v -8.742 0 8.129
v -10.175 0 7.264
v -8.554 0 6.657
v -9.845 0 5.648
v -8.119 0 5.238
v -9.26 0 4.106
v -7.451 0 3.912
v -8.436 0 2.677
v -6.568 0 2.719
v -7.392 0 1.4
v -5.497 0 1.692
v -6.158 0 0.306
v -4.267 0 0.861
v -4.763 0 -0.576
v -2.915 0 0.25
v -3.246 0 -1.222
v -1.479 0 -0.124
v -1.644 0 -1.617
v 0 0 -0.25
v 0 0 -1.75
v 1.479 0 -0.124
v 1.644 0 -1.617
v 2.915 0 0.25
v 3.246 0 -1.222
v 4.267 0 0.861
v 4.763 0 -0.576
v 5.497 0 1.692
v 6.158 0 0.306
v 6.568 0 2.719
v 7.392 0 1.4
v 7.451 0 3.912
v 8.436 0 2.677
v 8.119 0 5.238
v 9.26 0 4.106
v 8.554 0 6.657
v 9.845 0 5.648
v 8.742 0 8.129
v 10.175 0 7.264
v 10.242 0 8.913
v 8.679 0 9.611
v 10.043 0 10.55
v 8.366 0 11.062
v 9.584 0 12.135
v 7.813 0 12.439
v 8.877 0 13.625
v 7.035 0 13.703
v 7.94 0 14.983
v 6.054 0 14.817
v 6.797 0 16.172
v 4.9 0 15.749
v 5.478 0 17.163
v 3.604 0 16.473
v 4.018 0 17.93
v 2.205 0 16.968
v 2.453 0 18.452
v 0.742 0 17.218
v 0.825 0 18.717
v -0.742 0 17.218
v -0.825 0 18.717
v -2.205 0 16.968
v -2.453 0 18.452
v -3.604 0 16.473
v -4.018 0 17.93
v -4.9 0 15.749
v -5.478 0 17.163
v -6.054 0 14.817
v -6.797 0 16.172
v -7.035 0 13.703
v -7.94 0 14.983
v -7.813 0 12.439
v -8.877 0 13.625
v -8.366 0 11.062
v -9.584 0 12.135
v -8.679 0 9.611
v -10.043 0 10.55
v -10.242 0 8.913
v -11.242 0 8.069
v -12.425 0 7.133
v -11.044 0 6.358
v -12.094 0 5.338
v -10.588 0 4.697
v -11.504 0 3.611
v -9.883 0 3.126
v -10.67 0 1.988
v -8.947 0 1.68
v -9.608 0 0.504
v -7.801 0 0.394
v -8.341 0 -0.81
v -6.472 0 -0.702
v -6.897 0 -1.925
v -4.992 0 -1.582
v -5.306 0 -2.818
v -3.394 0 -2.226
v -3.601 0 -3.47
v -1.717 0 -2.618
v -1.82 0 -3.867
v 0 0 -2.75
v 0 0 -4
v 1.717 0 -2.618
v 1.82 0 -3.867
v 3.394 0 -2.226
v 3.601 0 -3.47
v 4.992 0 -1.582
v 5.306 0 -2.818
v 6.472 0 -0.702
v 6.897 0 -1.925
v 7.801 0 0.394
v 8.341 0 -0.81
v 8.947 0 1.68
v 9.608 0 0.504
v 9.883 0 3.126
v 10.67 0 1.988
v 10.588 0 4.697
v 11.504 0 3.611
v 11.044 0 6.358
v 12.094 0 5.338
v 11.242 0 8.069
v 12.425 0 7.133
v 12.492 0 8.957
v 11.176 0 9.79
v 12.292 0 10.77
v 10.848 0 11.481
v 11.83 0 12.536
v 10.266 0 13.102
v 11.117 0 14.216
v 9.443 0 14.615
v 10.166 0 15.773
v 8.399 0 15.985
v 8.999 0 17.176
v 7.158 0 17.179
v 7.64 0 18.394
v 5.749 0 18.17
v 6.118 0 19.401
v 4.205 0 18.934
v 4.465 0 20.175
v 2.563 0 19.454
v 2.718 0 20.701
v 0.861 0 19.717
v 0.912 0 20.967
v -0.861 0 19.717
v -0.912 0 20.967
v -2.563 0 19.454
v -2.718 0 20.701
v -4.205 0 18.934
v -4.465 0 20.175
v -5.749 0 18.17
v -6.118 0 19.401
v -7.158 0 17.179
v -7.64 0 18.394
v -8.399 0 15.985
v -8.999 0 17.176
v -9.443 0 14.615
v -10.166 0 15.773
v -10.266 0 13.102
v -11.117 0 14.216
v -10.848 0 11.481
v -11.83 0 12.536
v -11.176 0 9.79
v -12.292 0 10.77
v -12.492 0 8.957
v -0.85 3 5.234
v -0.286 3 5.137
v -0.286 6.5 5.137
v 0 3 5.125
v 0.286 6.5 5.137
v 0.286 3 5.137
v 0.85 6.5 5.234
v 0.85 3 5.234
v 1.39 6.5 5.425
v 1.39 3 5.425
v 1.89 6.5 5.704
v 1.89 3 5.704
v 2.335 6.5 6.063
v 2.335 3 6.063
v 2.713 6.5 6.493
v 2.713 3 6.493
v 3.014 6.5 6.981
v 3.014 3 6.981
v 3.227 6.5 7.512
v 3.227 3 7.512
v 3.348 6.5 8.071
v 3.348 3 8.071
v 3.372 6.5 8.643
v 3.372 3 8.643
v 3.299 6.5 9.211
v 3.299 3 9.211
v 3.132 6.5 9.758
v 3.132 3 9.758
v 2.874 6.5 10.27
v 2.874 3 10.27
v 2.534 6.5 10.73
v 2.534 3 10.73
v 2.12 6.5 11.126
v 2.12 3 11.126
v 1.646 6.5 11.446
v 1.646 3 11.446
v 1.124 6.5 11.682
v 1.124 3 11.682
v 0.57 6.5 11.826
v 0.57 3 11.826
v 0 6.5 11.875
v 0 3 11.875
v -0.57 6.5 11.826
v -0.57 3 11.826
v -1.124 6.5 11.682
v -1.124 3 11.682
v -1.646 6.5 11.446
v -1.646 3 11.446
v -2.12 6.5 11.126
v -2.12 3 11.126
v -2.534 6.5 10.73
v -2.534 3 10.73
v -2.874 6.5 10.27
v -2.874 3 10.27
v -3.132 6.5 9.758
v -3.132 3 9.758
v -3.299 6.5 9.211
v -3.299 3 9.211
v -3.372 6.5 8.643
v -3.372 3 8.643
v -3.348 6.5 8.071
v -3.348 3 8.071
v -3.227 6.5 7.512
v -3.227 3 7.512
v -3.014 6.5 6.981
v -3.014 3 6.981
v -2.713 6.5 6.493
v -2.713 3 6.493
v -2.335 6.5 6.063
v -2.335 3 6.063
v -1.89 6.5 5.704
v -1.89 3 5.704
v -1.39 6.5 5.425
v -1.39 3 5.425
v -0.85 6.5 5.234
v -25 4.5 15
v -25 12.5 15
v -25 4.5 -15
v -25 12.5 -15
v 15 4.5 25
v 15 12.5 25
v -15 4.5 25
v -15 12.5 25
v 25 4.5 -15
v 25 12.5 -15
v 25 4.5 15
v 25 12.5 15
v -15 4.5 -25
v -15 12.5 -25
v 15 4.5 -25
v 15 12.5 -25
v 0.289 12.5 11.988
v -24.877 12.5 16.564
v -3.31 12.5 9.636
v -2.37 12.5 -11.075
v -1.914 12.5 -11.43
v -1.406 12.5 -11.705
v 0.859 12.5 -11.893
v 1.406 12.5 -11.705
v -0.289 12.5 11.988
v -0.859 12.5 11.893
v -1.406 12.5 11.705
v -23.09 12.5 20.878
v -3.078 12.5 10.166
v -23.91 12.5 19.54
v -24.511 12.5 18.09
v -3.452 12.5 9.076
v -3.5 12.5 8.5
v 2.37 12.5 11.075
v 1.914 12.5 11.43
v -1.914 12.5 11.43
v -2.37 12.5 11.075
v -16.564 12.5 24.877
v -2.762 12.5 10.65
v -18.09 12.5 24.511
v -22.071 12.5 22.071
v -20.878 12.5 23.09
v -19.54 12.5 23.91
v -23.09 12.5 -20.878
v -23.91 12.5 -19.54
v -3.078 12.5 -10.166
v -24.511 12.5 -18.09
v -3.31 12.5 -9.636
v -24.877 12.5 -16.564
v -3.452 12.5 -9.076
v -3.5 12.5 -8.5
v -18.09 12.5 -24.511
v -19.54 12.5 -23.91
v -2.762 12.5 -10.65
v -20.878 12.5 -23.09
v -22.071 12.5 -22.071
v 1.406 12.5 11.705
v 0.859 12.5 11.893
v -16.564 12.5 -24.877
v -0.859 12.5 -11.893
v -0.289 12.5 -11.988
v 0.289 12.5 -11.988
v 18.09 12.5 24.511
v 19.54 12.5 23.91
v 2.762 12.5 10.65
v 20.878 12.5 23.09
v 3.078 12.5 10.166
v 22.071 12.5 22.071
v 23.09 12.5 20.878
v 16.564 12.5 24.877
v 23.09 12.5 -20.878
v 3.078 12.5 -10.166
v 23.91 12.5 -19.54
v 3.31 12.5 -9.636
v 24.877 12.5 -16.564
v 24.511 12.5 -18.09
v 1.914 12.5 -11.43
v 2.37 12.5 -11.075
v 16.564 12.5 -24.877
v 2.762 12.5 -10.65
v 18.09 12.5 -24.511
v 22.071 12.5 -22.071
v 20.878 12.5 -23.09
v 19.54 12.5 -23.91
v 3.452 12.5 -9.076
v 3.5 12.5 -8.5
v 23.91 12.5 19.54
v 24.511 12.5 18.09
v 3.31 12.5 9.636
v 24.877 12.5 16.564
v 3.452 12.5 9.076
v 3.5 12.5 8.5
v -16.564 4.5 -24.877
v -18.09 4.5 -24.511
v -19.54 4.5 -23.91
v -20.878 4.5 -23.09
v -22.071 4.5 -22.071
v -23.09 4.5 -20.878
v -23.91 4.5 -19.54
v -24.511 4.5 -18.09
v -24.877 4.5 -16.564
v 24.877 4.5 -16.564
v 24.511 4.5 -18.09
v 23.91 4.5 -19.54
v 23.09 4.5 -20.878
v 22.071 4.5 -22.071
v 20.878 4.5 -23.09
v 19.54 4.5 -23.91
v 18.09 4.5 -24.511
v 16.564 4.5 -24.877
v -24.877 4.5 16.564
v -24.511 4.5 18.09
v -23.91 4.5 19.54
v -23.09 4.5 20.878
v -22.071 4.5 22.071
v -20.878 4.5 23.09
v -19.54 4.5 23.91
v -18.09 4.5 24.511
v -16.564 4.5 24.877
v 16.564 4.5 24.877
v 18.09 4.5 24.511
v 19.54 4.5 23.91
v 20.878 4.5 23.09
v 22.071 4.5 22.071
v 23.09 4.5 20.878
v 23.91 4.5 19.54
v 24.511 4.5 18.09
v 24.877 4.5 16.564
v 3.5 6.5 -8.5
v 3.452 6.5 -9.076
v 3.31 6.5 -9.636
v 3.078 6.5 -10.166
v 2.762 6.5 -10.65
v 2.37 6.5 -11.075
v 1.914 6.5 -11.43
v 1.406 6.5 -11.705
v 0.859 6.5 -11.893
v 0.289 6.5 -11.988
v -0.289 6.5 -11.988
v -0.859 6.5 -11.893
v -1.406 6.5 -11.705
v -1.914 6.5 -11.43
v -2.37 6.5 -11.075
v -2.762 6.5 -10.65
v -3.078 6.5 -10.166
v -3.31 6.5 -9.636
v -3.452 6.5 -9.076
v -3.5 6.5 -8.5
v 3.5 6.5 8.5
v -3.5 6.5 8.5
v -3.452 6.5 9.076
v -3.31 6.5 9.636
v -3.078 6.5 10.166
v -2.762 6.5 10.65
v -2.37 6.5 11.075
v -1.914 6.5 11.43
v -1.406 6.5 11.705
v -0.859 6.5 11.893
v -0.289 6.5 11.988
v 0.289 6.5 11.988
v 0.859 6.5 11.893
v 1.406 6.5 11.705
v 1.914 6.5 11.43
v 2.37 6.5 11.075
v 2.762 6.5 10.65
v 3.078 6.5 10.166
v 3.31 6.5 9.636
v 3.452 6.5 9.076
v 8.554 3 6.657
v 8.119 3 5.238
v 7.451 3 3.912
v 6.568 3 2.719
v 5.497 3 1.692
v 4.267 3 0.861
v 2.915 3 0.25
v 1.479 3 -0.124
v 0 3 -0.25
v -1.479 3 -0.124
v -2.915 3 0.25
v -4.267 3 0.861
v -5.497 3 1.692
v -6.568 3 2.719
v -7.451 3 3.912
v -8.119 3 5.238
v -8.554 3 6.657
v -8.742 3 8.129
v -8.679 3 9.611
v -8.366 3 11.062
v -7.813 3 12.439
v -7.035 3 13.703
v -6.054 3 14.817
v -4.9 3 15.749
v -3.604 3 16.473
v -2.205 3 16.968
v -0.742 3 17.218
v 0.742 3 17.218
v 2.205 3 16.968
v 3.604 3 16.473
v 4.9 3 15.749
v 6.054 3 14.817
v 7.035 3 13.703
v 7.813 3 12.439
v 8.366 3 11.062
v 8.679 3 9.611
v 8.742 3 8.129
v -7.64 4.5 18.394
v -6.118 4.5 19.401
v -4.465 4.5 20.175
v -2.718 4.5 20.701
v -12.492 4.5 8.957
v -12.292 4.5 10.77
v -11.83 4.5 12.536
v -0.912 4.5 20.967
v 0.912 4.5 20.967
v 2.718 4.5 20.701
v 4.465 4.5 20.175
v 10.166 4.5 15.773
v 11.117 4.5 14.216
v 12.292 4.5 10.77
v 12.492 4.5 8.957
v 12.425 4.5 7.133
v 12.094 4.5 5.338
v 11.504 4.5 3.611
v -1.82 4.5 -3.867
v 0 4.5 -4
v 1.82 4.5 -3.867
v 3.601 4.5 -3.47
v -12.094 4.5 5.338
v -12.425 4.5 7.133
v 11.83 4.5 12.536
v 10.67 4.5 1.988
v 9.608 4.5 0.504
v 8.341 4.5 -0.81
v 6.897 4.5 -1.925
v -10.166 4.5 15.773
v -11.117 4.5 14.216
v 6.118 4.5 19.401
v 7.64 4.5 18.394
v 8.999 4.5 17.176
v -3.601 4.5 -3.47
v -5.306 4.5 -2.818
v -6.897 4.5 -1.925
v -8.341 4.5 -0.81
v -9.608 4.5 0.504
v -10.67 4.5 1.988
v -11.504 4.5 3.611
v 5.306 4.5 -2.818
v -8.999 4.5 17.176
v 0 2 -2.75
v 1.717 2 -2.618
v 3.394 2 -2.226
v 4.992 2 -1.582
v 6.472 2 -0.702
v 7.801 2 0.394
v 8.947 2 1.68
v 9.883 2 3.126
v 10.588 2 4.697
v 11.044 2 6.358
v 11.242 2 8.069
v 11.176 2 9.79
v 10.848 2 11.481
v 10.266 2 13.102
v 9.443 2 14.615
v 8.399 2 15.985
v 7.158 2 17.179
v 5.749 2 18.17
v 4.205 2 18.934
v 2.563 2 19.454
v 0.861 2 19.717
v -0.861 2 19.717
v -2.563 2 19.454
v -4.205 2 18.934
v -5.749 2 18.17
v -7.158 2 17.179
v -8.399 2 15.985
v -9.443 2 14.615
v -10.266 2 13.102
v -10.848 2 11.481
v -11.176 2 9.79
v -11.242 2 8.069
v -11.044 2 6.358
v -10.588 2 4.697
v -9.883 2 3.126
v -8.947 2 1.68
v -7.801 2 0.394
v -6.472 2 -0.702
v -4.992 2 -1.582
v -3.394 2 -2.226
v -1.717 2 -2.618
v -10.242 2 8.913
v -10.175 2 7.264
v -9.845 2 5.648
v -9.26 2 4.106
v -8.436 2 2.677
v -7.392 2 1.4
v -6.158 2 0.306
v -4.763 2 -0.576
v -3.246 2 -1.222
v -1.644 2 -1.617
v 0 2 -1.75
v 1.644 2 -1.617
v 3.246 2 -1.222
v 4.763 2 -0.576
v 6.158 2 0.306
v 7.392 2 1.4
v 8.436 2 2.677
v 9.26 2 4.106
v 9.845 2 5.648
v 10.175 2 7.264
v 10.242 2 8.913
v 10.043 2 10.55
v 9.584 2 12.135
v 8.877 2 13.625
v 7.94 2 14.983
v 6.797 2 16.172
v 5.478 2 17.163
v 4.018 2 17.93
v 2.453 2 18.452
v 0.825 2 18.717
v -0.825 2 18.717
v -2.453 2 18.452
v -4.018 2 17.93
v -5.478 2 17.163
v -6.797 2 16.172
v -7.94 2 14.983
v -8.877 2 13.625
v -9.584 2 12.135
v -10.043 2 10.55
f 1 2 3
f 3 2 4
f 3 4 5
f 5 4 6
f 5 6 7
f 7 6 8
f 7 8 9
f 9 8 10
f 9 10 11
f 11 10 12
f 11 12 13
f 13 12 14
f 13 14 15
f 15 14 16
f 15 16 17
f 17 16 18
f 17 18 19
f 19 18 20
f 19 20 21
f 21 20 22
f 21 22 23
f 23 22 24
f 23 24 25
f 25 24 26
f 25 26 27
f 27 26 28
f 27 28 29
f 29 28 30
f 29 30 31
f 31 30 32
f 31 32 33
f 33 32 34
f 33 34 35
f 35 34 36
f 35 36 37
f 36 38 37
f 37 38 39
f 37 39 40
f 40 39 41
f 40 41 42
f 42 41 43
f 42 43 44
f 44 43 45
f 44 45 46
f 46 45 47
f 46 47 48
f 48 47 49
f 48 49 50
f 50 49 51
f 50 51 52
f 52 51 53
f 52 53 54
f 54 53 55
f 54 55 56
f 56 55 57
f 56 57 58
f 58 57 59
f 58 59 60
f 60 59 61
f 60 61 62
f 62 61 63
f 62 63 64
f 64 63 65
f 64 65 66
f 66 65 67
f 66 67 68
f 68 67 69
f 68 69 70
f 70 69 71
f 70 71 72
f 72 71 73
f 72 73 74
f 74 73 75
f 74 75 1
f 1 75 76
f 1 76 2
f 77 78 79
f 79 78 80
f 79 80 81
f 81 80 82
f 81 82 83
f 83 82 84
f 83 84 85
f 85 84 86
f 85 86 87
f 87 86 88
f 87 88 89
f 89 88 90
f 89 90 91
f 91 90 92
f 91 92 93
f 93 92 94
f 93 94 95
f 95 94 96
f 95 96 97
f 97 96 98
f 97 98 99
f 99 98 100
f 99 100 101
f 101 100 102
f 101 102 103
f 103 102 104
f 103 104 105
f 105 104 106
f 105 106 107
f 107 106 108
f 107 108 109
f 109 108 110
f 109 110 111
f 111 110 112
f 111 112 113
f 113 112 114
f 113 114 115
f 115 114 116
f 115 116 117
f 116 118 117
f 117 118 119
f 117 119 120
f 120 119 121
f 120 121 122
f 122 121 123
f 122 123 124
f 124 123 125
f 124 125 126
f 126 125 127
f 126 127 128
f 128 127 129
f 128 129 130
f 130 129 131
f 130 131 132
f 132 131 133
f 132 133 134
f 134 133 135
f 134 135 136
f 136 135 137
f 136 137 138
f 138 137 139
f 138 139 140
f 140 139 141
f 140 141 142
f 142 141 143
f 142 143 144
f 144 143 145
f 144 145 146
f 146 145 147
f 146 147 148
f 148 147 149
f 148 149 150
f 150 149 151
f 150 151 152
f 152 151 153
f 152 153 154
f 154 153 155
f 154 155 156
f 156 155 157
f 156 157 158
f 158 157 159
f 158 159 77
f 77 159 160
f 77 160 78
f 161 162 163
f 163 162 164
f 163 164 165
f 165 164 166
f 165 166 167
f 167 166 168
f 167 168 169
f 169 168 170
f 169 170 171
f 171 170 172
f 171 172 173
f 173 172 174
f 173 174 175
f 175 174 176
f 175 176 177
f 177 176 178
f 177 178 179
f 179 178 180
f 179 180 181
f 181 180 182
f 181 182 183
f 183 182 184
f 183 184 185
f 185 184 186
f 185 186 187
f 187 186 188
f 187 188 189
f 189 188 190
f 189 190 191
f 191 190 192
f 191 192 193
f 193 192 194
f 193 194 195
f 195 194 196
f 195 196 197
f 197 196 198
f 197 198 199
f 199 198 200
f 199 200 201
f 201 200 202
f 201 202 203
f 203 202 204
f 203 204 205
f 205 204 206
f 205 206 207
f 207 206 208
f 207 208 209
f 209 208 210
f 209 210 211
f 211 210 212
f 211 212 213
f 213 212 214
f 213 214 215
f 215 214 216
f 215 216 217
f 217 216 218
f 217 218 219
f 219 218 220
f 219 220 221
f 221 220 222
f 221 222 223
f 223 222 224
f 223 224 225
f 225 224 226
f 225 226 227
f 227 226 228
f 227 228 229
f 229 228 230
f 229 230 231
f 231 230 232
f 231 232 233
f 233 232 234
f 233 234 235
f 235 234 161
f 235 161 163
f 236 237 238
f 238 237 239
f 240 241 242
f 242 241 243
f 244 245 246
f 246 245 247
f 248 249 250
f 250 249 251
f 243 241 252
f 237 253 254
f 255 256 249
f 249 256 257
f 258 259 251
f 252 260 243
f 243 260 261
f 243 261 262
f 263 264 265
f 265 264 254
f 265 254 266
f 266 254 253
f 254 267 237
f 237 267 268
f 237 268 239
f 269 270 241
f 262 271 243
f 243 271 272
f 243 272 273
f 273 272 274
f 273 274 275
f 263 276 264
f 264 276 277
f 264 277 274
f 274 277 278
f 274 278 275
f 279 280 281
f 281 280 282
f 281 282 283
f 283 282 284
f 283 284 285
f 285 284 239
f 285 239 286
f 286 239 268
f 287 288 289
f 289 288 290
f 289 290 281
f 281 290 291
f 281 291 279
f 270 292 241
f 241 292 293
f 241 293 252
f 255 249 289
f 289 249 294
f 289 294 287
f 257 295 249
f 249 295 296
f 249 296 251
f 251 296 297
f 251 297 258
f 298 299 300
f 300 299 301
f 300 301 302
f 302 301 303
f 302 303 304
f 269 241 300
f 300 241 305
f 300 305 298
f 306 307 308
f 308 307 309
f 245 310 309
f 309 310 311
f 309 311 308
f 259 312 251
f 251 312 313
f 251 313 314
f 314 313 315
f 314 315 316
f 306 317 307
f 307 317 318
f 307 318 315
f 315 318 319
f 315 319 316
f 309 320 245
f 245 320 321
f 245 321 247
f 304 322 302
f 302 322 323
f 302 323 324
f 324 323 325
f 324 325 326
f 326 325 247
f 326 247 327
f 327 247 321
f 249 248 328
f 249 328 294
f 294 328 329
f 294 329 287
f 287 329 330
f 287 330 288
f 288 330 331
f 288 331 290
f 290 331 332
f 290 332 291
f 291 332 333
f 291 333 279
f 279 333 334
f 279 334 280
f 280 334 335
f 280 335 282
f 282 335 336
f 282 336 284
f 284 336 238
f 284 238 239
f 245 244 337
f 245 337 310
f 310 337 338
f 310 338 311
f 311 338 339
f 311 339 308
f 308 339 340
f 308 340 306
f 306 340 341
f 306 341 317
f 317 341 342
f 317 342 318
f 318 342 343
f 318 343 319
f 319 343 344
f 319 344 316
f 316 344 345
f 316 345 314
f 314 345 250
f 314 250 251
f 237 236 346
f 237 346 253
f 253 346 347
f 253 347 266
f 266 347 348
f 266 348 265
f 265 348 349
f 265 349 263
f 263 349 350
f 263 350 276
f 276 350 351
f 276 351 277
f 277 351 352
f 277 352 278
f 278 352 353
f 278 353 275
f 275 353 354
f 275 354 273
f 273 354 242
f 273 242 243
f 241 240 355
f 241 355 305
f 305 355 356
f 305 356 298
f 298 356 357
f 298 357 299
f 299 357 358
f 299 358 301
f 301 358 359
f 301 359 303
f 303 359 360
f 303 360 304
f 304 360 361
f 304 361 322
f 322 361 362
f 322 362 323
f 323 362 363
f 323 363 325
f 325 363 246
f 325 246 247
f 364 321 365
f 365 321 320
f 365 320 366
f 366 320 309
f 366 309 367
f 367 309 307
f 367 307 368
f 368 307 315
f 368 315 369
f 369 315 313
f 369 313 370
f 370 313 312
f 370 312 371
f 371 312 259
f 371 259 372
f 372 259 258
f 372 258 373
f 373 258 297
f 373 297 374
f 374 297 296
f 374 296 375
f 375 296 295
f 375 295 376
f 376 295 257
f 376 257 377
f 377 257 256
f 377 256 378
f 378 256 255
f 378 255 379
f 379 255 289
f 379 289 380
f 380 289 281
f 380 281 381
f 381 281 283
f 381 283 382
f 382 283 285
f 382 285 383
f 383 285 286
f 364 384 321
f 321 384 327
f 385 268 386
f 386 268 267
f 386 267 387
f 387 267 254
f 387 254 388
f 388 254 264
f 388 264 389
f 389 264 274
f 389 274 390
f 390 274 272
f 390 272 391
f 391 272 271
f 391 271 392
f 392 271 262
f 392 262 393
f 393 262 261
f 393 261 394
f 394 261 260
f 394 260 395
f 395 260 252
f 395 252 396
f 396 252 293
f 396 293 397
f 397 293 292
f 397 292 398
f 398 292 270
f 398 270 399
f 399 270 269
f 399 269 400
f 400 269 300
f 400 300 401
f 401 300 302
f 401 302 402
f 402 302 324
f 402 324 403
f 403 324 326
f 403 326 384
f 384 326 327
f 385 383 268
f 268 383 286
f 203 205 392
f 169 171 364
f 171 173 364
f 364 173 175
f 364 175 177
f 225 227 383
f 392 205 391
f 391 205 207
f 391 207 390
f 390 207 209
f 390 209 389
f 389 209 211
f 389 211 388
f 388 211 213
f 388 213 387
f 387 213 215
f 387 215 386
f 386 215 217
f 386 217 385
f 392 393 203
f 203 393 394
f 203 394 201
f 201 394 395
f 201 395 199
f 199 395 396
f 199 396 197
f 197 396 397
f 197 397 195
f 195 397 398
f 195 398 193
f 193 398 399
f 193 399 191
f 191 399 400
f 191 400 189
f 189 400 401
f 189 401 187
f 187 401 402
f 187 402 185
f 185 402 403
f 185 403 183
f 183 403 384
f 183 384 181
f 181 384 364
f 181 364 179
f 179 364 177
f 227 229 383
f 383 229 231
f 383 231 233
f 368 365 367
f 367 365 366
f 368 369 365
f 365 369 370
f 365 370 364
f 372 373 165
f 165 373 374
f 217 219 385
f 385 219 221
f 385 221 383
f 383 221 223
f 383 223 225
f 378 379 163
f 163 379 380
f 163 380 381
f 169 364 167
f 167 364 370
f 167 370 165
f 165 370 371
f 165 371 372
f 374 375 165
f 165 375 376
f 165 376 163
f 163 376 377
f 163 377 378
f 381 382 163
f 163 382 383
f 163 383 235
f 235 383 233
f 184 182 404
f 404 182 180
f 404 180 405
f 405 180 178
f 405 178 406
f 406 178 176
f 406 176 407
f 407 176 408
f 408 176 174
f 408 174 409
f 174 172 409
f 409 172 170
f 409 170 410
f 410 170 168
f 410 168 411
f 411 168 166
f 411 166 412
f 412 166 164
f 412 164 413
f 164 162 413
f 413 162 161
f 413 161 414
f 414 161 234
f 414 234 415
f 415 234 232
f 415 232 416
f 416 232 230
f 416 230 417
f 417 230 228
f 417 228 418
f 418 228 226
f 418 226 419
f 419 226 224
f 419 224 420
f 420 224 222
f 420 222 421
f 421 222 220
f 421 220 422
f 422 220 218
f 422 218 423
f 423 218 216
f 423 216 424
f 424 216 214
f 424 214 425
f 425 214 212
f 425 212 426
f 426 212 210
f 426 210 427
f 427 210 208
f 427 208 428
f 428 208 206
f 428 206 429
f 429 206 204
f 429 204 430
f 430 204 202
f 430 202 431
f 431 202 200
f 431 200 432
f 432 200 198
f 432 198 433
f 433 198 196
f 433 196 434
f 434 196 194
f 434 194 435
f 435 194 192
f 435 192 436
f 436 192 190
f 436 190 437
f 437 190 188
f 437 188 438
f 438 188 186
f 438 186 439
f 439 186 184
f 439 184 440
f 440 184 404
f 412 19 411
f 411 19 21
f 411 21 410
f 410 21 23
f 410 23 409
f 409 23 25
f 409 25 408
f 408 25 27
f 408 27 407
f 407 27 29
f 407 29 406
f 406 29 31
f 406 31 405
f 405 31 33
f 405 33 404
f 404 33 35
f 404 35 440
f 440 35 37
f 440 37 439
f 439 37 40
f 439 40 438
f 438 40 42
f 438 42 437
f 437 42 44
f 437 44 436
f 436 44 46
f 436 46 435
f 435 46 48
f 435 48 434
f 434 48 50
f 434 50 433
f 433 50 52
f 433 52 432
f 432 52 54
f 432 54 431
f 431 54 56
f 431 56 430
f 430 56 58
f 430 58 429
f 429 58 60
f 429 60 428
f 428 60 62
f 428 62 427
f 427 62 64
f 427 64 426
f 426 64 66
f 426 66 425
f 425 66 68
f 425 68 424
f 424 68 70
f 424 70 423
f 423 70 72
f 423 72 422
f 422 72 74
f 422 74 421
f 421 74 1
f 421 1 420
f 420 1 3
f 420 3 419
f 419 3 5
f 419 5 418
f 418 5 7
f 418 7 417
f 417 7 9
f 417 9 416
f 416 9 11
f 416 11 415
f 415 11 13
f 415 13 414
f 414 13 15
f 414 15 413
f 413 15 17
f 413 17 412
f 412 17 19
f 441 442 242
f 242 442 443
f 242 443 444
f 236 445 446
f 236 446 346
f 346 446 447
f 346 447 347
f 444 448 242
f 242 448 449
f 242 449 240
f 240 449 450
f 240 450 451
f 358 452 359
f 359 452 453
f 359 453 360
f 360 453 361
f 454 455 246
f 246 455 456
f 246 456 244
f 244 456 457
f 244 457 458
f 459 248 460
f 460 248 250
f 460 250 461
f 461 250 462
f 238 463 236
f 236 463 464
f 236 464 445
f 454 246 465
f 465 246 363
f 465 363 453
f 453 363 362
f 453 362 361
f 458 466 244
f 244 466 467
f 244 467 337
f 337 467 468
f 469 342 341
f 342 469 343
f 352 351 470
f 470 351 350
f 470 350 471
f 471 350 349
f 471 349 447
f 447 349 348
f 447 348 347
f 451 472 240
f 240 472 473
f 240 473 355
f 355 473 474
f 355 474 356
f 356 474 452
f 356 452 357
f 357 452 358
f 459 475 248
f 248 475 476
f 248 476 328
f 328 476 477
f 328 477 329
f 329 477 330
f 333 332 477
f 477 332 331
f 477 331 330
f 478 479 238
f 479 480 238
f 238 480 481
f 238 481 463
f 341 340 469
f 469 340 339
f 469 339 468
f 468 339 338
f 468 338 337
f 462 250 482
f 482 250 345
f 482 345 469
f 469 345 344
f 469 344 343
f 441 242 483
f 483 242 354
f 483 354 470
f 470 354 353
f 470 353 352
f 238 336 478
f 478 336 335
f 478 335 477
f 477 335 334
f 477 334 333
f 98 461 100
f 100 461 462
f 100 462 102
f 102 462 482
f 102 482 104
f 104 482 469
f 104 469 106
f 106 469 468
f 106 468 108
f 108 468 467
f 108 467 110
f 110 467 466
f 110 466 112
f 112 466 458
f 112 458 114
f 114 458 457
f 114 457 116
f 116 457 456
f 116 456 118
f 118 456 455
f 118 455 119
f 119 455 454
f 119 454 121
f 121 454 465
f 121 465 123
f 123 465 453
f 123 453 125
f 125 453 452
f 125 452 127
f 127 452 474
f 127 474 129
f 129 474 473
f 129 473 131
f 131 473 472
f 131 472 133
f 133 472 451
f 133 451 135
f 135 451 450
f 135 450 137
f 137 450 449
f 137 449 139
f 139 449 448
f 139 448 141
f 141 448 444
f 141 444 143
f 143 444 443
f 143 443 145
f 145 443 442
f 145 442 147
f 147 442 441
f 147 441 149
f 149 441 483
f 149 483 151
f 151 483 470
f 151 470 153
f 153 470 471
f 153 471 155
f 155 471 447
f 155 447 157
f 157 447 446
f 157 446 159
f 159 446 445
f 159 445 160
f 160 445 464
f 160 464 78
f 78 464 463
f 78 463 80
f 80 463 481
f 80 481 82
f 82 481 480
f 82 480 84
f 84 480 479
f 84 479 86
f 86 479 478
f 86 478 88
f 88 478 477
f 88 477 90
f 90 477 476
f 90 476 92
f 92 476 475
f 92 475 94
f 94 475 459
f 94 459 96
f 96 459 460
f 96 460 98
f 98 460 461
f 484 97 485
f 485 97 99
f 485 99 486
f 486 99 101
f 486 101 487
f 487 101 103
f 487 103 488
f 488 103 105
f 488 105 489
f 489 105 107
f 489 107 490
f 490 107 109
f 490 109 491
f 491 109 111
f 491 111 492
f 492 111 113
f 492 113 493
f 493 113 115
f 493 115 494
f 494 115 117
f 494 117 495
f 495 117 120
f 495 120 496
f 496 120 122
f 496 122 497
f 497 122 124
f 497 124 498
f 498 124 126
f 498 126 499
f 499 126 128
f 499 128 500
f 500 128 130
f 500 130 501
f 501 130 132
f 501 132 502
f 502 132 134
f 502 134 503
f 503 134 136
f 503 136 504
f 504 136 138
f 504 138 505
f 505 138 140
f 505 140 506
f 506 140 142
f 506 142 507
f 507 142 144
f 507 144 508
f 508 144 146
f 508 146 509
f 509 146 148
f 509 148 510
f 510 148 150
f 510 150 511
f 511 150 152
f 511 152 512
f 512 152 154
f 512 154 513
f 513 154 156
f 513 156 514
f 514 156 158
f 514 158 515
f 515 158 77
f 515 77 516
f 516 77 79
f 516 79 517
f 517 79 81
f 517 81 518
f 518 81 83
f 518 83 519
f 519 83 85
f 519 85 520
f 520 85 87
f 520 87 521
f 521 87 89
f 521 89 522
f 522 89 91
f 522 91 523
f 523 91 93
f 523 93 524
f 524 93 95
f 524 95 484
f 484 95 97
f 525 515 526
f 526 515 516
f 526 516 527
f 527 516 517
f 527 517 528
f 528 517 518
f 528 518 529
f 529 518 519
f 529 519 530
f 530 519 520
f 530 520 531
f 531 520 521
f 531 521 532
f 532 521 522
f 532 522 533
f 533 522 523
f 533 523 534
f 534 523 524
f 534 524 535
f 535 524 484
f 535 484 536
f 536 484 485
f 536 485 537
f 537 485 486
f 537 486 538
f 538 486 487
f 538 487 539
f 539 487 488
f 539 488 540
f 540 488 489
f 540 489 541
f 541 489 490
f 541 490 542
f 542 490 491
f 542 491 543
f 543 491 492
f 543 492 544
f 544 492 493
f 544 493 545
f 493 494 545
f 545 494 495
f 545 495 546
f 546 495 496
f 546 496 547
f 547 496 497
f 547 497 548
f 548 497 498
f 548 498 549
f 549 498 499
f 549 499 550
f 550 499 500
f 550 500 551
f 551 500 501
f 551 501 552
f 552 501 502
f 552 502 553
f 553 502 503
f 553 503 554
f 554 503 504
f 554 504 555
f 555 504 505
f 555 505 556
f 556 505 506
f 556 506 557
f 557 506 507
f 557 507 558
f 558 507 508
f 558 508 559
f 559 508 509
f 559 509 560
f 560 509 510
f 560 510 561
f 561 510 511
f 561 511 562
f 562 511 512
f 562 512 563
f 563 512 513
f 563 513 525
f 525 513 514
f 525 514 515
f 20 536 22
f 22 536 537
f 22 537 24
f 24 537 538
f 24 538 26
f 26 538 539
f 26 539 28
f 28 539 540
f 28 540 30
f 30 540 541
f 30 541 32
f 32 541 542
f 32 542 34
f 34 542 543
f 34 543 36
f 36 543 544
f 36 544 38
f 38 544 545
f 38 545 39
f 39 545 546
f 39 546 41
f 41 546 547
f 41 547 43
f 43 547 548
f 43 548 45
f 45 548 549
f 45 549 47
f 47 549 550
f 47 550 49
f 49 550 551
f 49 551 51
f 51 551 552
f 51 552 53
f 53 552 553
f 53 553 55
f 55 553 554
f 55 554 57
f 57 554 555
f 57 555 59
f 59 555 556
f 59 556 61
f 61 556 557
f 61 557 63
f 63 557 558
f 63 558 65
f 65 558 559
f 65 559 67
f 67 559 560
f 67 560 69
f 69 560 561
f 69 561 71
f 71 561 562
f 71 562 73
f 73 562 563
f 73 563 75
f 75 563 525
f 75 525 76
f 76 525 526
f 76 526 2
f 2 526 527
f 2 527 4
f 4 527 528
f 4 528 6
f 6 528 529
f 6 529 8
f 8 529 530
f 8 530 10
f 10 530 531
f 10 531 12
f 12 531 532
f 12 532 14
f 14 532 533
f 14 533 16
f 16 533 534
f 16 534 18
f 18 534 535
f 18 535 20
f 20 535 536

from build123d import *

# Parameters (mm, degrees)
SKETCH_1_W          = 50
SKETCH_1_H          = 50
EXTRUDE_1_DEPTH     = 12.5
FILLET_1_R          = 10
CUT_EXTRUDE_1_DEPTH = 6
SKETCH_3_R          = 3.375
CUT_EXTRUDE_2_DEPTH = 6
SKETCH_4_R          = 8.75
CUT_EXTRUDE_3_DEPTH = 3
SKETCH_5_W          = 67.74325056
SKETCH_5_H          = 59.124248938
SKETCH_5_R          = 12.5
CUT_EXTRUDE_4_DEPTH = 4.5
SKETCH_6_R          = 11.25
SKETCH_6_R_2        = 10.25
CUT_EXTRUDE_5_DEPTH = 2


with BuildPart() as part:
    # 草图1 → 凸台-拉伸1 (new body)
    with BuildSketch(Plane(origin=(0, 0, 0), x_dir=(1, 0, 0), z_dir=(0, 1, 0))):
        Rectangle(SKETCH_1_W, SKETCH_1_H)
    extrude(amount=EXTRUDE_1_DEPTH)

    # 圆角1
    fillet_1_edges = [part.edges().sort_by_distance(p)[0] for p in [
        (-25, 6.25, -25),
        (25, 6.25, -25),
        (25, 6.25, 25),
        (-25, 6.25, 25),
    ]]
    fillet(fillet_1_edges, radius=FILLET_1_R)

    # 草图2 → 切除-拉伸1 (cut)
    with BuildSketch(Plane(origin=(0, 12.5, 0), x_dir=(1, 0, 0), z_dir=(0, 1, 0))):
        with BuildLine():
            Line((3.5, 8.5), (3.5, -8.5))
            ThreePointArc((3.5, -8.5), (0, -12), (-3.5, -8.5))
            Line((-3.5, -8.5), (-3.5, 8.5))
            ThreePointArc((-3.5, 8.5), (0, 12), (3.5, 8.5))
        make_face()
    extrude(amount=-CUT_EXTRUDE_1_DEPTH, mode=Mode.SUBTRACT)

    # 草图3 → 切除-拉伸2 (cut)
    with BuildSketch(Plane(origin=(0, 6.5, 0), x_dir=(1, 0, 0), z_dir=(0, 1, 0))):
        with Locations(Location((0, -8.5, 0), (0, 0, 270))):
            Circle(SKETCH_3_R)
    extrude(amount=-CUT_EXTRUDE_2_DEPTH, mode=Mode.SUBTRACT)

    # 草图4 → 切除-拉伸3 (cut)
    with BuildSketch(Plane(origin=(0, 0, 0), x_dir=(-1, 0, 0), z_dir=(0, -1, 0))):
        with Locations(Location((0, -8.5, 0), (0, 0, 90))):
            Circle(SKETCH_4_R)
    extrude(amount=-CUT_EXTRUDE_3_DEPTH, mode=Mode.SUBTRACT)

    # 草图5 → 切除-拉伸4 (cut)
    with BuildSketch(Plane(origin=(0, 0, 0), x_dir=(-1, 0, 0), z_dir=(0, -1, 0))):
        with Locations((1.182484979, -0.052554888)):
            Rectangle(SKETCH_5_W, SKETCH_5_H)
        with Locations(Location((0, -8.5, 0), (0, 0, 90))):
            Circle(SKETCH_5_R, mode=Mode.SUBTRACT)
    extrude(amount=-CUT_EXTRUDE_4_DEPTH, mode=Mode.SUBTRACT)

    # 草图6 → 切除-拉伸5 (cut)
    with BuildSketch(Plane(origin=(0, 0, 0), x_dir=(-1, 0, 0), z_dir=(0, -1, 0))):
        with Locations(Location((0, -8.5, 0), (0, 0, 90))):
            Circle(SKETCH_6_R)
        with Locations(Location((0, -8.5, 0), (0, 0, 90))):
            Circle(SKETCH_6_R_2, mode=Mode.SUBTRACT)
    extrude(amount=-CUT_EXTRUDE_5_DEPTH, mode=Mode.SUBTRACT)


solid = part.part
